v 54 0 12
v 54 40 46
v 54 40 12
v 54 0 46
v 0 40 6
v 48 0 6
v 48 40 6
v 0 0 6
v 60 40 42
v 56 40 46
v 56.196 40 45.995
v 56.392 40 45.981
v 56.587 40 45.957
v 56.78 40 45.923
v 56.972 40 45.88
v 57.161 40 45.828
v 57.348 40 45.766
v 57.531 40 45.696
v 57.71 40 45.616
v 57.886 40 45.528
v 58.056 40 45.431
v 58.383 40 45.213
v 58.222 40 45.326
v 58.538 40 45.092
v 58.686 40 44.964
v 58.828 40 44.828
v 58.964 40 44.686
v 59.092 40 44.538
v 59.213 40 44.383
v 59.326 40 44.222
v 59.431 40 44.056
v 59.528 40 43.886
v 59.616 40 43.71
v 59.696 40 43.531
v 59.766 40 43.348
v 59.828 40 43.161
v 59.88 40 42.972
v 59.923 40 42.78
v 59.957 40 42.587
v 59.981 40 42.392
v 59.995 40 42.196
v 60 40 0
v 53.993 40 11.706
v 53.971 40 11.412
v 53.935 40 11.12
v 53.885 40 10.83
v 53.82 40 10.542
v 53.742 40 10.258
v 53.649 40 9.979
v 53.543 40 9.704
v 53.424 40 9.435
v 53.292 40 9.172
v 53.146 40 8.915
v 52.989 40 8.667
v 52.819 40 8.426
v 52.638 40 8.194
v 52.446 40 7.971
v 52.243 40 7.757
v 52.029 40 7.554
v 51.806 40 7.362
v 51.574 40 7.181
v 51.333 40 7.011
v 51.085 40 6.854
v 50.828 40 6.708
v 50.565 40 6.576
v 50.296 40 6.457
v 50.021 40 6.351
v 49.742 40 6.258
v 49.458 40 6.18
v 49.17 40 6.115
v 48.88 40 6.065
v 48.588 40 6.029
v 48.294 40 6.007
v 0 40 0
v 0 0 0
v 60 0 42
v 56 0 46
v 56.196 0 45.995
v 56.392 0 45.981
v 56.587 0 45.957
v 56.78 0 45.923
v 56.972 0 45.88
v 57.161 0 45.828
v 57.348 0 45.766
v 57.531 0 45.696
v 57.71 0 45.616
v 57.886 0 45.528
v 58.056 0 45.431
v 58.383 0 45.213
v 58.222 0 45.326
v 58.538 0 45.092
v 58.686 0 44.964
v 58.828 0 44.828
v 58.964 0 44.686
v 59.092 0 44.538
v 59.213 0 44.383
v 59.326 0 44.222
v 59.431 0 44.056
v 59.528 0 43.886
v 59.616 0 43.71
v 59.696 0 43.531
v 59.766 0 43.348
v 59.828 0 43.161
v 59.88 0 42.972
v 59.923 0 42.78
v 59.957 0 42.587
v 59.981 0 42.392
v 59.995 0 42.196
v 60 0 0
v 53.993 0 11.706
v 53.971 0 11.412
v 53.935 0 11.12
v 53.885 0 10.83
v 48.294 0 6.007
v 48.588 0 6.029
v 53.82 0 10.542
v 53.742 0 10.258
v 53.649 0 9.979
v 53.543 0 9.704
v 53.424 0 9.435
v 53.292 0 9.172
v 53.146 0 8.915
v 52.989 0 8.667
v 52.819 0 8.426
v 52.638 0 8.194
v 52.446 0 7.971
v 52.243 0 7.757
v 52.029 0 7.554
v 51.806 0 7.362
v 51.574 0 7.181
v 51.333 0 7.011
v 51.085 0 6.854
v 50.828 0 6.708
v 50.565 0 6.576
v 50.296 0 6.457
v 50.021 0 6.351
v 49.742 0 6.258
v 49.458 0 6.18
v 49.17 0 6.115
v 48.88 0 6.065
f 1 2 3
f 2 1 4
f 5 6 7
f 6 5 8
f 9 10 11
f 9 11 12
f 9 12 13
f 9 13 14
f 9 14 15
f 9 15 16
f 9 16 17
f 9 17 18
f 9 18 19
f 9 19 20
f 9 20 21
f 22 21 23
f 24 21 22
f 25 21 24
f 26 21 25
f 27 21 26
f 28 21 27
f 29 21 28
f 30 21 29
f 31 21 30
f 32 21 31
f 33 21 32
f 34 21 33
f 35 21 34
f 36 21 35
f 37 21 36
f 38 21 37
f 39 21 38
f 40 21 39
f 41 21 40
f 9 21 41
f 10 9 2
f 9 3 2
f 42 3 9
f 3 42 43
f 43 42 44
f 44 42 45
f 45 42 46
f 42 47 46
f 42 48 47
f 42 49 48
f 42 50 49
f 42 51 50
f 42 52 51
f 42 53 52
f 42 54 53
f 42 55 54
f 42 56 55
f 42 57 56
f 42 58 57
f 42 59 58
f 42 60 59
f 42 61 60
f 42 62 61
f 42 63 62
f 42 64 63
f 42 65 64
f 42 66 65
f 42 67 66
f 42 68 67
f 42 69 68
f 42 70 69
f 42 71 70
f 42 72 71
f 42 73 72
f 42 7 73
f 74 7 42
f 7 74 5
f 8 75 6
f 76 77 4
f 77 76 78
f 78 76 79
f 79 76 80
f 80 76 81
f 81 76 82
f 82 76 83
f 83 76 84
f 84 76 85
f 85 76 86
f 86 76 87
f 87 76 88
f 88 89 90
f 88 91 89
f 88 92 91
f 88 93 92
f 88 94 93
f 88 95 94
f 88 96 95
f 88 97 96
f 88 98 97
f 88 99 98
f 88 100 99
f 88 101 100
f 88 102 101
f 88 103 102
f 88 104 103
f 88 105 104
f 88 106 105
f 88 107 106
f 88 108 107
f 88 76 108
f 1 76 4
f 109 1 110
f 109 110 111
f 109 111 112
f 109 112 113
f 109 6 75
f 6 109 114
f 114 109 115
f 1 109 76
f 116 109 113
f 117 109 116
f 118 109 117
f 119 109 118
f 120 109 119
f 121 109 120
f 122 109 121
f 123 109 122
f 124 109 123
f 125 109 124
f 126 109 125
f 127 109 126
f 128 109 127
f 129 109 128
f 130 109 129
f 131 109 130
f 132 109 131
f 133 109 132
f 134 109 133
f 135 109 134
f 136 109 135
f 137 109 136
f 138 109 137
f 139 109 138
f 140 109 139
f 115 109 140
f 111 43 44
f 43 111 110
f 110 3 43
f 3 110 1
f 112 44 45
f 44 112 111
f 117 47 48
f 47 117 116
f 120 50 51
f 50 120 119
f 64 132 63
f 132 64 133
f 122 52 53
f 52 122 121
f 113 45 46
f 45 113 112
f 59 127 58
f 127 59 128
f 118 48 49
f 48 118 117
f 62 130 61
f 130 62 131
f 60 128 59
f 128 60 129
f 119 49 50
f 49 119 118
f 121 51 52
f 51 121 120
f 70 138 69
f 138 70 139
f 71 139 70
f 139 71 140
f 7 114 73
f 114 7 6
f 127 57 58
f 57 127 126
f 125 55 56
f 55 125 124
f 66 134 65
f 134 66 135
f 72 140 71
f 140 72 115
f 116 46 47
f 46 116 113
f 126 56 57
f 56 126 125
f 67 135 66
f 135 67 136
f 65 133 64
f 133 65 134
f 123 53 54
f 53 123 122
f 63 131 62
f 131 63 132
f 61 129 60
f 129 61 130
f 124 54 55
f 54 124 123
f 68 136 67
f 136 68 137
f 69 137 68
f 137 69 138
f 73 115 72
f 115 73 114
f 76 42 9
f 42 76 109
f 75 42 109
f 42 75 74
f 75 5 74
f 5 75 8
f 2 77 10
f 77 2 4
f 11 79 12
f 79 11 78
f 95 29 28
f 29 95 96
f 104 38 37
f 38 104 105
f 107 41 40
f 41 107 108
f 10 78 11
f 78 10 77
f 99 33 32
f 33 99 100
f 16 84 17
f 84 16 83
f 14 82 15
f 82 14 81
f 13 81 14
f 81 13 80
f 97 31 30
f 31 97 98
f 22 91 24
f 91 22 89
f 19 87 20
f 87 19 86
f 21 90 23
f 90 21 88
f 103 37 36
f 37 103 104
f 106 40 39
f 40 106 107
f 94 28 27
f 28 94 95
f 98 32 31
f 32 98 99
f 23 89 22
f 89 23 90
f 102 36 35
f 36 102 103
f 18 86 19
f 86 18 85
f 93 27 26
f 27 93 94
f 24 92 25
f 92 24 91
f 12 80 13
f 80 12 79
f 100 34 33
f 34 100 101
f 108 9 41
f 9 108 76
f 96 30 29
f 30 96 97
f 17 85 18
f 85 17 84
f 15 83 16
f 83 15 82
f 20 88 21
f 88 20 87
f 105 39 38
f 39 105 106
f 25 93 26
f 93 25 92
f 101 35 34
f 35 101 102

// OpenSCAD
// L-bracket, all dimensions mm.
// Spec: base 60 (x) x 40 (y) x 6, upright x in [54, 60] rising to z=46,
//       R6 concave fillet along the inner edge at (x=54, z=6),
//       R4 convex fillet along the outer top edge at (x=60, z=46),
//       both full depth (y = 40).
$fn = 128;

base_l    = 60;
base_w    = 40;
base_t    = 6;
upright_t = 6;
upright_h = 40;   // above the base: z from 6 to 46
fillet_r  = 6;
edge_r    = 4;

module concave_fillet() {
    // fills the inner corner between the base top (z=6) and the upright
    // left face (x=54): square [48..54] x [6..12] minus a quarter cylinder
    // of R6 centred on (x=48, z=12), extruded the full depth.
    translate([base_l - upright_t - fillet_r, 0, base_t + fillet_r])
        difference() {
            translate([0, 0, -fillet_r])
                cube([fillet_r, base_w, fillet_r]);
            rotate([-90, 0, 0]) cylinder(h = base_w, r = fillet_r);
        }
}

module convex_fillet_cut() {
    // rounds the outer corner at (x=60, z=46): removes square
    // [56..60] x [42..46] minus a quarter cylinder of R4 centred (56, 42).
    translate([base_l - edge_r, 0, base_t + upright_h - edge_r])
        difference() {
            cube([edge_r, base_w, edge_r]);
            rotate([-90, 0, 0]) cylinder(h = base_w, r = edge_r);
        }
}

difference() {
    union() {
        cube([base_l, base_w, base_t]);
        translate([base_l - upright_t, 0, base_t])
            cube([upright_t, base_w, upright_h]);
        concave_fillet();
    }
    convex_fillet_cut();
}
